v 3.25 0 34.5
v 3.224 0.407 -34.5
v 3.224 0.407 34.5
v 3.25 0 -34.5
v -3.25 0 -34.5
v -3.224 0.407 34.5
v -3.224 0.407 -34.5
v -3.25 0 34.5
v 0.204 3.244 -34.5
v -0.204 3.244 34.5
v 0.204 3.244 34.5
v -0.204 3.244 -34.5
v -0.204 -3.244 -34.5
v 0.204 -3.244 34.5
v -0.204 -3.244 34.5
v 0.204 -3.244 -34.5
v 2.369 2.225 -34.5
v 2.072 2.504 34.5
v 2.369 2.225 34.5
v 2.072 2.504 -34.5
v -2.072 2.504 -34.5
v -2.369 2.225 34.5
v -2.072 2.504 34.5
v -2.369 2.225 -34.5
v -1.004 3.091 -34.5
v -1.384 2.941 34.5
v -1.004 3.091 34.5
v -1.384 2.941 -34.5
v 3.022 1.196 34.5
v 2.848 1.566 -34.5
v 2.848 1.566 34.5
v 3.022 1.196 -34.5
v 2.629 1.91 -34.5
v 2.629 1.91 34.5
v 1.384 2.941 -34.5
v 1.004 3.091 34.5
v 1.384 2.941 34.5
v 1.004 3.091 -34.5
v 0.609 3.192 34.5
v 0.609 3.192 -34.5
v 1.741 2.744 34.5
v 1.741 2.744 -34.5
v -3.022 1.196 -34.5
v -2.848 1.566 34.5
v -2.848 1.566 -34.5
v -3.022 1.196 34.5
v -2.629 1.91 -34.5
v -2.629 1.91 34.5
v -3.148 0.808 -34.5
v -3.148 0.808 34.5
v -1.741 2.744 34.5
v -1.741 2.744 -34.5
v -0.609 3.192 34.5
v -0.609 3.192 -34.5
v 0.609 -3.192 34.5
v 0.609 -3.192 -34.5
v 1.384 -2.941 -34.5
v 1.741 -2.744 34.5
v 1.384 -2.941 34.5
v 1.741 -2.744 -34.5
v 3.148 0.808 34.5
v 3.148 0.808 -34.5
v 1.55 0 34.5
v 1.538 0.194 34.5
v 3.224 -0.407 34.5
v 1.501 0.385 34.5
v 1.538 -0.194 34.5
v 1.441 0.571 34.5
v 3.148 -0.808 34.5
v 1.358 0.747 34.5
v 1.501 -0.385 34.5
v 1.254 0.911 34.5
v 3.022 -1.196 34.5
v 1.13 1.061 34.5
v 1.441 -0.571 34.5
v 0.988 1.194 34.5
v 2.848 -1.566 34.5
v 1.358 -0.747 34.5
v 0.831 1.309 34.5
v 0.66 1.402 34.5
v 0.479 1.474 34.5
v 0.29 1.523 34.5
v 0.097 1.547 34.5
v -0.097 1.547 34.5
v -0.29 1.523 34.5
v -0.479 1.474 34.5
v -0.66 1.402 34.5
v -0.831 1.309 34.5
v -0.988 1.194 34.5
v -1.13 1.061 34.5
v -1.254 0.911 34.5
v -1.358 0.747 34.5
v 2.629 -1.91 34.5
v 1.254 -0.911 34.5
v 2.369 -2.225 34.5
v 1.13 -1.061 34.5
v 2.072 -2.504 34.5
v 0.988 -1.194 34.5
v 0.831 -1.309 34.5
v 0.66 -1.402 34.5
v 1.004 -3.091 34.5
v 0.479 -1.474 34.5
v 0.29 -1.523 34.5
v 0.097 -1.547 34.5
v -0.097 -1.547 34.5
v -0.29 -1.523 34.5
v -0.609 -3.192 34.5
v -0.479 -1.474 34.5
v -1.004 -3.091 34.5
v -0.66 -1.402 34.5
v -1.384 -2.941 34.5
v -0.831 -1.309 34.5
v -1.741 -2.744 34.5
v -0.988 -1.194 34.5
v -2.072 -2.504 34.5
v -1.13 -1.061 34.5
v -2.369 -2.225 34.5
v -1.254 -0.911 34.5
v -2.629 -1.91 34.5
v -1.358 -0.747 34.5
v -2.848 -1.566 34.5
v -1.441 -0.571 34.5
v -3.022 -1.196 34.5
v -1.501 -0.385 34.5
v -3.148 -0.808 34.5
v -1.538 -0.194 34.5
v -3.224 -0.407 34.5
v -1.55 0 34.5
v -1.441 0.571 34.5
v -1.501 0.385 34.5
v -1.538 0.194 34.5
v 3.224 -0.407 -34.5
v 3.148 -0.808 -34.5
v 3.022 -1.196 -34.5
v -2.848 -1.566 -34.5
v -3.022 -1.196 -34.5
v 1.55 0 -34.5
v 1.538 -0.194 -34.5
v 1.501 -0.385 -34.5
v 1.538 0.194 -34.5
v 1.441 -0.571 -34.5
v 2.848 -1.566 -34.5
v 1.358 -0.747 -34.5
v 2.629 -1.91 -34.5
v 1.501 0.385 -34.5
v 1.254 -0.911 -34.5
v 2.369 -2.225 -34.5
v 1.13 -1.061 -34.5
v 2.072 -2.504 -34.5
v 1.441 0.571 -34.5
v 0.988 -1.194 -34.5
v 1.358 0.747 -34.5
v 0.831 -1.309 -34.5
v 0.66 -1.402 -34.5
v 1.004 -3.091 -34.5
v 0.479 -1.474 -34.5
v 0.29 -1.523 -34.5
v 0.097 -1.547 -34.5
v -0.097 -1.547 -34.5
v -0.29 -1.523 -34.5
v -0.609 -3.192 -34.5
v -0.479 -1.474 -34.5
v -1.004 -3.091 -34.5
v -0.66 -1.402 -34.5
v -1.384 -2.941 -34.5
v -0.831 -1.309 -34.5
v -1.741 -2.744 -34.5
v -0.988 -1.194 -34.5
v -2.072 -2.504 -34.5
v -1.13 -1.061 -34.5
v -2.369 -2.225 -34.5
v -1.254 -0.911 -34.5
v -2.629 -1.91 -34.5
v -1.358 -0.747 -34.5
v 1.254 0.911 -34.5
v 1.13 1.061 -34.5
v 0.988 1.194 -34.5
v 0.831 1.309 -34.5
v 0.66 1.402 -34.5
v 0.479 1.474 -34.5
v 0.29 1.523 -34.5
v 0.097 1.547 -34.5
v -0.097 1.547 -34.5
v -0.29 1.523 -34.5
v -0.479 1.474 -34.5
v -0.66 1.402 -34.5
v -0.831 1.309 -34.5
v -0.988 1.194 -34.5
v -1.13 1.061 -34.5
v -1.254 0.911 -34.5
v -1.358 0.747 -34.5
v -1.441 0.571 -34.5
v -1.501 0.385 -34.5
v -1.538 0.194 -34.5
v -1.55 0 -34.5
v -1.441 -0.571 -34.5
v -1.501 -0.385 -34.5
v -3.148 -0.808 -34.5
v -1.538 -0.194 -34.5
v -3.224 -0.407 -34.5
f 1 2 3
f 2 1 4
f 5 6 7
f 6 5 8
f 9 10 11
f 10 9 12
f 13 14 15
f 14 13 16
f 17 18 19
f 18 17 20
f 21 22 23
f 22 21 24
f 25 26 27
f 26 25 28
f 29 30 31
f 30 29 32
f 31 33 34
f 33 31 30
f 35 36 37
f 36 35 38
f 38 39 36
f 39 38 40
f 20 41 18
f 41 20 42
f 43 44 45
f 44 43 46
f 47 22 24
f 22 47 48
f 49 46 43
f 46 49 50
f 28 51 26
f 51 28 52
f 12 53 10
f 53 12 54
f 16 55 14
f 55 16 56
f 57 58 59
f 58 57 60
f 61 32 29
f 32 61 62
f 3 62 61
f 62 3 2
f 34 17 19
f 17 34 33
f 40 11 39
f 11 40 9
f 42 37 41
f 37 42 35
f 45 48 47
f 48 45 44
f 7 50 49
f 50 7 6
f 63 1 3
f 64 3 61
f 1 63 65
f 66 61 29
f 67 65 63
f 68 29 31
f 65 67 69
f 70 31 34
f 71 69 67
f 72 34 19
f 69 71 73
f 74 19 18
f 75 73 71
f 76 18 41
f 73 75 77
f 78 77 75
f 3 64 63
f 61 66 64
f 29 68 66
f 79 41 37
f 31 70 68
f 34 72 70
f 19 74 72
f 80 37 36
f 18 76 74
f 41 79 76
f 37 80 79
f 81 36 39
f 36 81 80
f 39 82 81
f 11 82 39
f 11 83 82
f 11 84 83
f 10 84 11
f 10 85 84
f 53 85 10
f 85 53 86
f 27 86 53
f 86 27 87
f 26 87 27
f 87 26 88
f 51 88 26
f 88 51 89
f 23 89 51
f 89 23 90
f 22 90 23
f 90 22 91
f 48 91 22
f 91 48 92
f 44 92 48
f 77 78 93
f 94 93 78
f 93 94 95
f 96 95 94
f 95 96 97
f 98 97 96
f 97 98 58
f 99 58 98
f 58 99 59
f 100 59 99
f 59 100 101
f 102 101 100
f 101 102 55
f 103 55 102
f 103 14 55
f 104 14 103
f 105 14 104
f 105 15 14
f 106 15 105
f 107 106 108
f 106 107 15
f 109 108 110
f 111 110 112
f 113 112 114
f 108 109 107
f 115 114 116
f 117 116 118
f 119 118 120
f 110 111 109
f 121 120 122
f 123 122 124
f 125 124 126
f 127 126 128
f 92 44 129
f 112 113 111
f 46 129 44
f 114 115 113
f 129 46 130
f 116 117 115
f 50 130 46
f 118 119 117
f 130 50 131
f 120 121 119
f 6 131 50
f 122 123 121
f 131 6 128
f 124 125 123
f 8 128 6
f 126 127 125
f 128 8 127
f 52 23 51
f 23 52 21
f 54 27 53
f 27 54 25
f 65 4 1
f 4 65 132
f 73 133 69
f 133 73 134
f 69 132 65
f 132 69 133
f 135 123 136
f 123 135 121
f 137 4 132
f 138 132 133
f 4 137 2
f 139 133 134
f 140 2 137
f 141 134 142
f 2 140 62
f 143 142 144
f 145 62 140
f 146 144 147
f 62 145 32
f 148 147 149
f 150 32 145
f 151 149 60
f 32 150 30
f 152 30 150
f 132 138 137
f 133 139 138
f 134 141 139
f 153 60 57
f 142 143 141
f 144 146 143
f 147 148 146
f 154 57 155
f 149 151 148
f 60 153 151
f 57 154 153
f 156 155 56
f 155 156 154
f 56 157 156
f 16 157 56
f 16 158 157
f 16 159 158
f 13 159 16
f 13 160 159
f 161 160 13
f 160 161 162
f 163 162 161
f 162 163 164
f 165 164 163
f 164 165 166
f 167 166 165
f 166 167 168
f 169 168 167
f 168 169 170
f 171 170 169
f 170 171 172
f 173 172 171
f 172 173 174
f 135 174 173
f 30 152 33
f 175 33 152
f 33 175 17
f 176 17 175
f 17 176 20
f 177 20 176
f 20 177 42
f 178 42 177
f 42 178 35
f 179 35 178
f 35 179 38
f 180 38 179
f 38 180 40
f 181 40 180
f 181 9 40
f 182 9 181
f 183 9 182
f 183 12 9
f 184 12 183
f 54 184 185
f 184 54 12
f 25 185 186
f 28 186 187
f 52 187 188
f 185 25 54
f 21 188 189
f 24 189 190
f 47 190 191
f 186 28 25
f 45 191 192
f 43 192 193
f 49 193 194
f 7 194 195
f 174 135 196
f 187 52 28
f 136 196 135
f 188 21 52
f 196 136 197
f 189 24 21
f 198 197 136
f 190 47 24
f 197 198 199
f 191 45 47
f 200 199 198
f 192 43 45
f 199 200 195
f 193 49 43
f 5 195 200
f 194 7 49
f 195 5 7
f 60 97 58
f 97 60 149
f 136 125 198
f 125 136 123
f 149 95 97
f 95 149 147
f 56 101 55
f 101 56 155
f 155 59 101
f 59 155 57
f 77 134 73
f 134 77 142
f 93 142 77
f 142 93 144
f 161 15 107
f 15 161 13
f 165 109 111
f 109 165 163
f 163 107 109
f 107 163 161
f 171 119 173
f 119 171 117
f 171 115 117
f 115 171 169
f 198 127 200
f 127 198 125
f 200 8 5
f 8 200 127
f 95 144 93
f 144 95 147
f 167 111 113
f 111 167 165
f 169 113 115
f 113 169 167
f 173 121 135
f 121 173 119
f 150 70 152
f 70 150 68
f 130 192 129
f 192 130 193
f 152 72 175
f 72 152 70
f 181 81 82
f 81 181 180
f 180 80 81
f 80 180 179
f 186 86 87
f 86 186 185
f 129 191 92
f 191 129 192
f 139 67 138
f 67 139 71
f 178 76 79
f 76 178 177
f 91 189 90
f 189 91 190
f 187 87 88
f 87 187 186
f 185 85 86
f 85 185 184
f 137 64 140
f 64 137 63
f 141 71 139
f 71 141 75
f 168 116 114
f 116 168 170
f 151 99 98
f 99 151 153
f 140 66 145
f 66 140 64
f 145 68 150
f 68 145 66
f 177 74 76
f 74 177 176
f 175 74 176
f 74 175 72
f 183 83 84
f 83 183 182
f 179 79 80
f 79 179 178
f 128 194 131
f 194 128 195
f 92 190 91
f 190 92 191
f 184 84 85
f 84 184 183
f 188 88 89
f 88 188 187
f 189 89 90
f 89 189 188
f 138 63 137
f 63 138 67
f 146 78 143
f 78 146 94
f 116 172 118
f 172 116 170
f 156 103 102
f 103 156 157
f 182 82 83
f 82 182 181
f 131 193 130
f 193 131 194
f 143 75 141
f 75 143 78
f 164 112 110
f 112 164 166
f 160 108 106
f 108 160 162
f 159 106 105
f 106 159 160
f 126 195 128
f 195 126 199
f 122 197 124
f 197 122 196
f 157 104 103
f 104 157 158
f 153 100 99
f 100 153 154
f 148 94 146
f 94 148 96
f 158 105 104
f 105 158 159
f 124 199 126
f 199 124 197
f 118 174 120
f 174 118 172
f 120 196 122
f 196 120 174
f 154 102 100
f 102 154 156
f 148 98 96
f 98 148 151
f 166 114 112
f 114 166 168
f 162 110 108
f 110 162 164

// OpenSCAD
$fn = 50;


difference() {
	union() {
		translate(v = [0, 0, -34.5000000000]) {
			cylinder(h = 69, r = 3.2500000000);
		}
	}
	union() {
		translate(v = [0, 0, -100.0000000000]) {
			cylinder(h = 200, r = 1.5500000000);
		}
	}
}
